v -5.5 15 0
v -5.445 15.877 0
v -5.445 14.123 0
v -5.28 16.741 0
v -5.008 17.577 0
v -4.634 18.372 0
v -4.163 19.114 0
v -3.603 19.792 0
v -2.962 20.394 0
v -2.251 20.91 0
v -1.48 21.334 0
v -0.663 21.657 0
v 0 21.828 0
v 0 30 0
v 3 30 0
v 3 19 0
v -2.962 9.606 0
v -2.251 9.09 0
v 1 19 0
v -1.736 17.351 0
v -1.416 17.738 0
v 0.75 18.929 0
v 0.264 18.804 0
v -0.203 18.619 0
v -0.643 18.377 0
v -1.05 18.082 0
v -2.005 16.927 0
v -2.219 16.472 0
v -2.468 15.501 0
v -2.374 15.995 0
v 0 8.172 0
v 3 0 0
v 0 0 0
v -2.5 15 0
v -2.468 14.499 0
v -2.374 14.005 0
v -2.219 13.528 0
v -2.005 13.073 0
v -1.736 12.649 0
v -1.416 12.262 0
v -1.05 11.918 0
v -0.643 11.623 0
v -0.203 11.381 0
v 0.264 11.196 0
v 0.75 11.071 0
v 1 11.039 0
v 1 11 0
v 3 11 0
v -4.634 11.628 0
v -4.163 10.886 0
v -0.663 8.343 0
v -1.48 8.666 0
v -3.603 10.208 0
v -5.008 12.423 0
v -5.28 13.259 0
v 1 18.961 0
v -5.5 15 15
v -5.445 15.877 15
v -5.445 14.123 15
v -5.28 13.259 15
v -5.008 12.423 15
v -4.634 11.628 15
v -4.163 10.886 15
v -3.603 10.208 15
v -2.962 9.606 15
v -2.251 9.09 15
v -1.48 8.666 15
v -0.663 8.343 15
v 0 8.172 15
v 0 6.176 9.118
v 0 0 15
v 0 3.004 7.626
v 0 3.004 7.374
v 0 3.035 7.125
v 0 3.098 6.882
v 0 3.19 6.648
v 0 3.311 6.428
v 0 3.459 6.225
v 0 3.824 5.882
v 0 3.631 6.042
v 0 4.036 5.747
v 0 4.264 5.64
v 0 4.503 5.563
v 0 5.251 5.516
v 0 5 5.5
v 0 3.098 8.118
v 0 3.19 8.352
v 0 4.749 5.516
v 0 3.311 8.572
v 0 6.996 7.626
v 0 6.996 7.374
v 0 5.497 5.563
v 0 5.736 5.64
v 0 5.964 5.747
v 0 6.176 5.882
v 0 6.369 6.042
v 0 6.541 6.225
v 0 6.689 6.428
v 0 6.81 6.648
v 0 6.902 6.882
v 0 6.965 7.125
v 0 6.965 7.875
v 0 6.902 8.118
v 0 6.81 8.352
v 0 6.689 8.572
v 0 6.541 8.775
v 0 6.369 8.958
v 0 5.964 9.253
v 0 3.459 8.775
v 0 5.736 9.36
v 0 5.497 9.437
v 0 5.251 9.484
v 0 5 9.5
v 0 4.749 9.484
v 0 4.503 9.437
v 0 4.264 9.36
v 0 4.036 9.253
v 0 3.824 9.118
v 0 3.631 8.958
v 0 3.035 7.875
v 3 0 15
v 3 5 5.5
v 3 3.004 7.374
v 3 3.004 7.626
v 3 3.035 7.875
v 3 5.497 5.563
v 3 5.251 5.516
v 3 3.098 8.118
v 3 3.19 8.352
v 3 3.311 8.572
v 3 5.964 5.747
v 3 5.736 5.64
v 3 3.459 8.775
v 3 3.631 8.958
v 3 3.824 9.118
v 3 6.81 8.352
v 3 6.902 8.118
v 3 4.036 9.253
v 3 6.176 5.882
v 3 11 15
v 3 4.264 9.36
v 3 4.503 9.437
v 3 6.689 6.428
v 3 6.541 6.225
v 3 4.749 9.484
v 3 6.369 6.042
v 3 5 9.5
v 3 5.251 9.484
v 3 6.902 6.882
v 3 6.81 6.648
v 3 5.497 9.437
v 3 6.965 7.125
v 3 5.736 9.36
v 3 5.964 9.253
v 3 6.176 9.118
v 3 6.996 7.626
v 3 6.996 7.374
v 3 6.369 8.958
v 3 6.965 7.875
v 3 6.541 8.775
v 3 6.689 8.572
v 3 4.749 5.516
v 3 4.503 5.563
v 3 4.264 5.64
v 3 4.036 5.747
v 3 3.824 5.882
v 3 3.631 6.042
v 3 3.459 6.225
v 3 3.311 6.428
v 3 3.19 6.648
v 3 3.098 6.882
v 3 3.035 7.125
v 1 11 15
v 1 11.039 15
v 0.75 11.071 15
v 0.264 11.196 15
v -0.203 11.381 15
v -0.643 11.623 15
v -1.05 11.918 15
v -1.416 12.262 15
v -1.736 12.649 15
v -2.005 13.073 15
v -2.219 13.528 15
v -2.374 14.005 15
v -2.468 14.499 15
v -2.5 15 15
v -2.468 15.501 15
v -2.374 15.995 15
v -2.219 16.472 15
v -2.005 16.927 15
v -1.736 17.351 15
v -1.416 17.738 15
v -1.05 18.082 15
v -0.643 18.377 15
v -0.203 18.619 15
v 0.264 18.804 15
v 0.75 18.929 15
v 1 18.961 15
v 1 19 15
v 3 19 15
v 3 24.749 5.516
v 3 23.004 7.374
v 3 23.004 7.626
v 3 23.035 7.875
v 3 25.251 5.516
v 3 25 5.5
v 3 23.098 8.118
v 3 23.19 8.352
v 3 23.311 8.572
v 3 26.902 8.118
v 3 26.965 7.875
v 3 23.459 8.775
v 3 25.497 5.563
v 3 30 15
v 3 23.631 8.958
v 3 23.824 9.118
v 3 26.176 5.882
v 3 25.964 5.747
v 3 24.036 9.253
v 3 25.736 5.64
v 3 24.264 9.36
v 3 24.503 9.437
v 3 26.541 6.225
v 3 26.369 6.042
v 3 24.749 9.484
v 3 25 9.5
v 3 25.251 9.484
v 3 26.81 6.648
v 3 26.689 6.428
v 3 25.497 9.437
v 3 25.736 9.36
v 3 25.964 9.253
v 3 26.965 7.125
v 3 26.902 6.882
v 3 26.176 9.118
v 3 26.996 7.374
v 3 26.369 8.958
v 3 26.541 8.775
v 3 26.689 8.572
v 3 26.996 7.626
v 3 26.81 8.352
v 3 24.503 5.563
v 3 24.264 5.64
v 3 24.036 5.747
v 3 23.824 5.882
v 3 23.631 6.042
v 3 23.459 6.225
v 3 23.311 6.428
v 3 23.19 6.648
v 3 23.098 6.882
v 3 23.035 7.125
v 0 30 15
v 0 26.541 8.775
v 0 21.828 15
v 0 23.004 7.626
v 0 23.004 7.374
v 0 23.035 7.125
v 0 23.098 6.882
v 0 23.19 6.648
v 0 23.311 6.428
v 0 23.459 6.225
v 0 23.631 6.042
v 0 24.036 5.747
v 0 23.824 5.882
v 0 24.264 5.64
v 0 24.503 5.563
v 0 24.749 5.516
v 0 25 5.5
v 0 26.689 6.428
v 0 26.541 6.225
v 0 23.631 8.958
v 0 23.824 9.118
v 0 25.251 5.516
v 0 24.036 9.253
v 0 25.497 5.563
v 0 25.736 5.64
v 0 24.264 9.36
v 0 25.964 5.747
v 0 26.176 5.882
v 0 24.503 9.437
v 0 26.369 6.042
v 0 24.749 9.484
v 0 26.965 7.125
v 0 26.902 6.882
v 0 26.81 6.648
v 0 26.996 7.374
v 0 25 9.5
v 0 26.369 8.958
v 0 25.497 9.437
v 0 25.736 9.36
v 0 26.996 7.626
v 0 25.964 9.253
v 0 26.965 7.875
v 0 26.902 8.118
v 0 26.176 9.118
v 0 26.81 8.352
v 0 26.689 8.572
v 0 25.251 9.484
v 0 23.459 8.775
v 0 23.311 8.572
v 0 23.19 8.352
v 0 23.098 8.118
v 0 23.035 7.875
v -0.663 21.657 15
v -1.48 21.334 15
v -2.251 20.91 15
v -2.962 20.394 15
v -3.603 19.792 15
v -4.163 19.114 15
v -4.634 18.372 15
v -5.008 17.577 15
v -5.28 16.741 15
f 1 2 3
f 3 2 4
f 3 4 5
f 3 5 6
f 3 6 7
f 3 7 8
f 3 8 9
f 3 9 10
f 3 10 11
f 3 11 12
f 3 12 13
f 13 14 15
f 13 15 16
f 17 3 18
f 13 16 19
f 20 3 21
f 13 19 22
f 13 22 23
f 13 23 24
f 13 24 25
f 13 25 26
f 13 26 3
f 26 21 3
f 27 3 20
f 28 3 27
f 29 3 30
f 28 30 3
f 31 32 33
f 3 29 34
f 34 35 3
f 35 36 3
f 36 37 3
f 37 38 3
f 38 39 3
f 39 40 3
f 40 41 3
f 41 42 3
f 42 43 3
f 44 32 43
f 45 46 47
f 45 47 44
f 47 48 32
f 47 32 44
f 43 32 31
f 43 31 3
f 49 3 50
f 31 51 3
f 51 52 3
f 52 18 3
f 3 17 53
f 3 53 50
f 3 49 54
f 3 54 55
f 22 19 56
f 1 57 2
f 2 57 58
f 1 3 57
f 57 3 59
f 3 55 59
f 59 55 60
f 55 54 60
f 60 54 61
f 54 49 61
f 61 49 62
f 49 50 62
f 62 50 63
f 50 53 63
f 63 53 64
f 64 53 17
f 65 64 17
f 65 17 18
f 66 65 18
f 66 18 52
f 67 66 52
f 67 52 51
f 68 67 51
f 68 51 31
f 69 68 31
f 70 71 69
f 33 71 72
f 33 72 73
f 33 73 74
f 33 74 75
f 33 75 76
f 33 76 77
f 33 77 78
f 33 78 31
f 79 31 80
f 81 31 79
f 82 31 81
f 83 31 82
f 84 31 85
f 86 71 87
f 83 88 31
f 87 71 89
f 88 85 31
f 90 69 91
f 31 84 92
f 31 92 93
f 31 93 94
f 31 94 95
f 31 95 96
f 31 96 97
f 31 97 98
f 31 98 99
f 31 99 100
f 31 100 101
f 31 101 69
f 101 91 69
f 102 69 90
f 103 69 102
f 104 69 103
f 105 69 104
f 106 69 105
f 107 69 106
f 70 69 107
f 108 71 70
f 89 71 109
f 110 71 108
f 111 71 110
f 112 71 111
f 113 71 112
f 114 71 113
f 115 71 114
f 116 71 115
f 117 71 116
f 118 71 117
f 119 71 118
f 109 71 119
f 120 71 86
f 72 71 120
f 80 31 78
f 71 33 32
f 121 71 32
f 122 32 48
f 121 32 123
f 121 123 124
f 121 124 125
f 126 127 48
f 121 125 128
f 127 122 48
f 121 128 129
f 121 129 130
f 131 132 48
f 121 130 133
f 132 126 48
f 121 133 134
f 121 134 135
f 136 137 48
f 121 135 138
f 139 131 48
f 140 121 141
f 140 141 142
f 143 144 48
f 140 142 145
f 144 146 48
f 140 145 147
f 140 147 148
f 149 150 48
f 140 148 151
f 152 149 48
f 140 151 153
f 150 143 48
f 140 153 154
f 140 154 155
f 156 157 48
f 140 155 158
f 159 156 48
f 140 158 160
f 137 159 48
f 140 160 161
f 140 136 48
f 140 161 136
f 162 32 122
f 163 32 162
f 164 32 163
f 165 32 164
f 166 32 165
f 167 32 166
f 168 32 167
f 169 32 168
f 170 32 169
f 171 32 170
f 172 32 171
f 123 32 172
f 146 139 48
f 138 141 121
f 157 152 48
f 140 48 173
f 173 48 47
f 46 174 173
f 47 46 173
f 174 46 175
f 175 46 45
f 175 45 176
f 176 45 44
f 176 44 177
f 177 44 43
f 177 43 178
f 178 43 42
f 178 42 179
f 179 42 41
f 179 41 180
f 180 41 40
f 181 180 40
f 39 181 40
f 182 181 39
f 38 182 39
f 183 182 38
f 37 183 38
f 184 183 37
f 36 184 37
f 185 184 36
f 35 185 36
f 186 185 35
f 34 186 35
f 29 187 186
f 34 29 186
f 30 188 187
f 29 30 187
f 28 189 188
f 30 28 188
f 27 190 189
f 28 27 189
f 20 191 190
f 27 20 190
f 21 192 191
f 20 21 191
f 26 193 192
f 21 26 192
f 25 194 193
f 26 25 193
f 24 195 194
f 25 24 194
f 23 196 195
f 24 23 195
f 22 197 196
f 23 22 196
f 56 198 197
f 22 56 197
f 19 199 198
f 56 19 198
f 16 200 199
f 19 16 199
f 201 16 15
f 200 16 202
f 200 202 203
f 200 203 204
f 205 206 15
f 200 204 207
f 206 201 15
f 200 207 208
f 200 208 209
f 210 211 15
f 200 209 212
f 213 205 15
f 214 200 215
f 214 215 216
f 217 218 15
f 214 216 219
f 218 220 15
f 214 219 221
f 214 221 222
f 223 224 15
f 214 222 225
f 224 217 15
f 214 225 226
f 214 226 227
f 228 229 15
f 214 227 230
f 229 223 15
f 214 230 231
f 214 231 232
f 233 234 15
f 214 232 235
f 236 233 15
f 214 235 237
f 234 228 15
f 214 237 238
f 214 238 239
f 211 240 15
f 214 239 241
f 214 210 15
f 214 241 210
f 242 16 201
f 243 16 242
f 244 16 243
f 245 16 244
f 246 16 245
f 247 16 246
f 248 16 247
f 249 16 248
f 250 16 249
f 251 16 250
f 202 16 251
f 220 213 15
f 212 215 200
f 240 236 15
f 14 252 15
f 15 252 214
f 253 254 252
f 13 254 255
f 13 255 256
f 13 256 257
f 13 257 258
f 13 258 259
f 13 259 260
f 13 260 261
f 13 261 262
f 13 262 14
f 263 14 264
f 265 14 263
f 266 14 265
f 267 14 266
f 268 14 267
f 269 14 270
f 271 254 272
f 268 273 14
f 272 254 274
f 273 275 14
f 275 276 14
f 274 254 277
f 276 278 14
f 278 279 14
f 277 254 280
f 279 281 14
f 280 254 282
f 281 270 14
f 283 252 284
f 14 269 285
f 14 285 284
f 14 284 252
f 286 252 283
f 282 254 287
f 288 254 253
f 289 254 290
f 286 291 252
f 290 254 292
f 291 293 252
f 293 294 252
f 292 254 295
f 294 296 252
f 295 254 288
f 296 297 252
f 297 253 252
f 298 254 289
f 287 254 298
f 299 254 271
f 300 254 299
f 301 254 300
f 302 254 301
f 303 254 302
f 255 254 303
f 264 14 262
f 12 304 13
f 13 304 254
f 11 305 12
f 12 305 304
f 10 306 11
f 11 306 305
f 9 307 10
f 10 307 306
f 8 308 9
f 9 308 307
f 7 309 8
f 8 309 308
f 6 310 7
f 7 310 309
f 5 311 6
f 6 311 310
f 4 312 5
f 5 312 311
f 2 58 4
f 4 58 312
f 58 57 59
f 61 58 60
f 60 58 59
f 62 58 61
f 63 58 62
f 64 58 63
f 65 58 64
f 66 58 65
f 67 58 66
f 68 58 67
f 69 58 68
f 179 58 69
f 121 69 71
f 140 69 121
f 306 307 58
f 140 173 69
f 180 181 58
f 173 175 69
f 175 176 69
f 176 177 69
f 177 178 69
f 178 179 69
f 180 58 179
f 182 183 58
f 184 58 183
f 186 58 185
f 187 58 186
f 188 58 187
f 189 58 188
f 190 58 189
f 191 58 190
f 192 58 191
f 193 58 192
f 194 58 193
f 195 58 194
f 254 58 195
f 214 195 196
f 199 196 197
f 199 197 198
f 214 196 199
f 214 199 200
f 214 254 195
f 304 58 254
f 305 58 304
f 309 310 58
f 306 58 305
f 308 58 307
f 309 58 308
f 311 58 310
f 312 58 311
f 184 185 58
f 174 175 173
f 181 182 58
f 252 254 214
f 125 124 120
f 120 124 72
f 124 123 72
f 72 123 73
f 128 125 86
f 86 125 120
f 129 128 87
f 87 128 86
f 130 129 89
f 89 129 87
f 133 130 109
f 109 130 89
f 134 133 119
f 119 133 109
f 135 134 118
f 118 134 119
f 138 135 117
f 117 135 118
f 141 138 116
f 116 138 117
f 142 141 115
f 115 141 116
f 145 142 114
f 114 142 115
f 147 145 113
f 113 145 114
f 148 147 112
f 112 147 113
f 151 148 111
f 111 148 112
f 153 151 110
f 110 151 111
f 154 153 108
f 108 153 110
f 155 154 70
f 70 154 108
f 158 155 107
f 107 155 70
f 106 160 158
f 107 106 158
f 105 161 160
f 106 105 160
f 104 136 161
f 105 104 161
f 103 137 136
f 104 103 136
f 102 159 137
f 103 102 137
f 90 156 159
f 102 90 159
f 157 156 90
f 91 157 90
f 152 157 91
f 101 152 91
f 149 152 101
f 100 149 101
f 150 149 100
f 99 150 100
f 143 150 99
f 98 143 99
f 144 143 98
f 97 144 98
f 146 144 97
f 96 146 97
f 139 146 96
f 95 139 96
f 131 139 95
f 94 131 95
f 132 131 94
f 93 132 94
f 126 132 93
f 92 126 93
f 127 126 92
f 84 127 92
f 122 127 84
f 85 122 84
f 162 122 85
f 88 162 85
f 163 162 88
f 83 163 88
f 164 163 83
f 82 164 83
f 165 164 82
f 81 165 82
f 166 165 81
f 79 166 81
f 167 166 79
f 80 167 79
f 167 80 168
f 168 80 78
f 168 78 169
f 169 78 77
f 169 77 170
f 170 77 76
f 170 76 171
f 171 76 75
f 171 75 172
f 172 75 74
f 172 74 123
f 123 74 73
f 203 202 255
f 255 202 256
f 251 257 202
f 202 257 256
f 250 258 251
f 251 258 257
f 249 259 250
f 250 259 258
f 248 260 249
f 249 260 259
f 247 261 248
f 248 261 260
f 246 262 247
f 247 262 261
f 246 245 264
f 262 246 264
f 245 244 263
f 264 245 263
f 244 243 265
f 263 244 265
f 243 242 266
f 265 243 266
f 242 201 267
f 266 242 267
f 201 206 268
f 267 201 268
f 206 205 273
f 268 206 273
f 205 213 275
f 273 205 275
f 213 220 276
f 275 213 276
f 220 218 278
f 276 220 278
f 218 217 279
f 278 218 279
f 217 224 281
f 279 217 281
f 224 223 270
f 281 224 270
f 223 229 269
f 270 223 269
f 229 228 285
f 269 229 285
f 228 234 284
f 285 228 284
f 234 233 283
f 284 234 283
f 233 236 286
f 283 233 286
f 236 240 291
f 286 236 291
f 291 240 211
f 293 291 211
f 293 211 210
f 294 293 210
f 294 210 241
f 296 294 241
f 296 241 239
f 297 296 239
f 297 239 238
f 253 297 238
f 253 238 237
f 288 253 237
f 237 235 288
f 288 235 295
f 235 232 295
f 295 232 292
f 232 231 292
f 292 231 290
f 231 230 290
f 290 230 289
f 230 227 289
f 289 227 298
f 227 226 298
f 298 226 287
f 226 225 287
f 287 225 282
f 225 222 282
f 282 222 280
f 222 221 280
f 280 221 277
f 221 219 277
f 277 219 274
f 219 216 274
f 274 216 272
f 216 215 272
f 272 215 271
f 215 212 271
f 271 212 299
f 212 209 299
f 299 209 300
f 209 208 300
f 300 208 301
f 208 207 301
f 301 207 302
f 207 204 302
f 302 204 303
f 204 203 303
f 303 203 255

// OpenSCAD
longueur=30;
hauteur=15;
ep=3;
r_m3=2;
r_gaine=4;

module clip_plateau(){
	difference(){
		union(){
			cube([ep,longueur,hauteur]);
			translate([ep/2,longueur/2,0]){cylinder(h = hauteur, r = r_gaine+ep, $fn=50);}
		}
		translate([ep/2,longueur/2,-5]){cylinder(h = hauteur+10, r = r_gaine, $fn=50);}
		translate([ep,-5,-5]){cube([10,longueur+10,hauteur+10]);}
		translate([ep-2,longueur/2-r_gaine,-5]){cube([10,5,hauteur+10]);}
		translate([ep-2,longueur/2+r_gaine-5,-5]){cube([10,5,hauteur+10]);}

		//trous M3
		translate([-5,5,hauteur/2]){rotate([0,90,0])cylinder(h = 10, r = r_m3, $fn=50);}
		translate([-5,longueur-5,hauteur/2]){rotate([0,90,0])cylinder(h = 10, r = r_m3, $fn=50);}

	}
}
clip_plateau();
